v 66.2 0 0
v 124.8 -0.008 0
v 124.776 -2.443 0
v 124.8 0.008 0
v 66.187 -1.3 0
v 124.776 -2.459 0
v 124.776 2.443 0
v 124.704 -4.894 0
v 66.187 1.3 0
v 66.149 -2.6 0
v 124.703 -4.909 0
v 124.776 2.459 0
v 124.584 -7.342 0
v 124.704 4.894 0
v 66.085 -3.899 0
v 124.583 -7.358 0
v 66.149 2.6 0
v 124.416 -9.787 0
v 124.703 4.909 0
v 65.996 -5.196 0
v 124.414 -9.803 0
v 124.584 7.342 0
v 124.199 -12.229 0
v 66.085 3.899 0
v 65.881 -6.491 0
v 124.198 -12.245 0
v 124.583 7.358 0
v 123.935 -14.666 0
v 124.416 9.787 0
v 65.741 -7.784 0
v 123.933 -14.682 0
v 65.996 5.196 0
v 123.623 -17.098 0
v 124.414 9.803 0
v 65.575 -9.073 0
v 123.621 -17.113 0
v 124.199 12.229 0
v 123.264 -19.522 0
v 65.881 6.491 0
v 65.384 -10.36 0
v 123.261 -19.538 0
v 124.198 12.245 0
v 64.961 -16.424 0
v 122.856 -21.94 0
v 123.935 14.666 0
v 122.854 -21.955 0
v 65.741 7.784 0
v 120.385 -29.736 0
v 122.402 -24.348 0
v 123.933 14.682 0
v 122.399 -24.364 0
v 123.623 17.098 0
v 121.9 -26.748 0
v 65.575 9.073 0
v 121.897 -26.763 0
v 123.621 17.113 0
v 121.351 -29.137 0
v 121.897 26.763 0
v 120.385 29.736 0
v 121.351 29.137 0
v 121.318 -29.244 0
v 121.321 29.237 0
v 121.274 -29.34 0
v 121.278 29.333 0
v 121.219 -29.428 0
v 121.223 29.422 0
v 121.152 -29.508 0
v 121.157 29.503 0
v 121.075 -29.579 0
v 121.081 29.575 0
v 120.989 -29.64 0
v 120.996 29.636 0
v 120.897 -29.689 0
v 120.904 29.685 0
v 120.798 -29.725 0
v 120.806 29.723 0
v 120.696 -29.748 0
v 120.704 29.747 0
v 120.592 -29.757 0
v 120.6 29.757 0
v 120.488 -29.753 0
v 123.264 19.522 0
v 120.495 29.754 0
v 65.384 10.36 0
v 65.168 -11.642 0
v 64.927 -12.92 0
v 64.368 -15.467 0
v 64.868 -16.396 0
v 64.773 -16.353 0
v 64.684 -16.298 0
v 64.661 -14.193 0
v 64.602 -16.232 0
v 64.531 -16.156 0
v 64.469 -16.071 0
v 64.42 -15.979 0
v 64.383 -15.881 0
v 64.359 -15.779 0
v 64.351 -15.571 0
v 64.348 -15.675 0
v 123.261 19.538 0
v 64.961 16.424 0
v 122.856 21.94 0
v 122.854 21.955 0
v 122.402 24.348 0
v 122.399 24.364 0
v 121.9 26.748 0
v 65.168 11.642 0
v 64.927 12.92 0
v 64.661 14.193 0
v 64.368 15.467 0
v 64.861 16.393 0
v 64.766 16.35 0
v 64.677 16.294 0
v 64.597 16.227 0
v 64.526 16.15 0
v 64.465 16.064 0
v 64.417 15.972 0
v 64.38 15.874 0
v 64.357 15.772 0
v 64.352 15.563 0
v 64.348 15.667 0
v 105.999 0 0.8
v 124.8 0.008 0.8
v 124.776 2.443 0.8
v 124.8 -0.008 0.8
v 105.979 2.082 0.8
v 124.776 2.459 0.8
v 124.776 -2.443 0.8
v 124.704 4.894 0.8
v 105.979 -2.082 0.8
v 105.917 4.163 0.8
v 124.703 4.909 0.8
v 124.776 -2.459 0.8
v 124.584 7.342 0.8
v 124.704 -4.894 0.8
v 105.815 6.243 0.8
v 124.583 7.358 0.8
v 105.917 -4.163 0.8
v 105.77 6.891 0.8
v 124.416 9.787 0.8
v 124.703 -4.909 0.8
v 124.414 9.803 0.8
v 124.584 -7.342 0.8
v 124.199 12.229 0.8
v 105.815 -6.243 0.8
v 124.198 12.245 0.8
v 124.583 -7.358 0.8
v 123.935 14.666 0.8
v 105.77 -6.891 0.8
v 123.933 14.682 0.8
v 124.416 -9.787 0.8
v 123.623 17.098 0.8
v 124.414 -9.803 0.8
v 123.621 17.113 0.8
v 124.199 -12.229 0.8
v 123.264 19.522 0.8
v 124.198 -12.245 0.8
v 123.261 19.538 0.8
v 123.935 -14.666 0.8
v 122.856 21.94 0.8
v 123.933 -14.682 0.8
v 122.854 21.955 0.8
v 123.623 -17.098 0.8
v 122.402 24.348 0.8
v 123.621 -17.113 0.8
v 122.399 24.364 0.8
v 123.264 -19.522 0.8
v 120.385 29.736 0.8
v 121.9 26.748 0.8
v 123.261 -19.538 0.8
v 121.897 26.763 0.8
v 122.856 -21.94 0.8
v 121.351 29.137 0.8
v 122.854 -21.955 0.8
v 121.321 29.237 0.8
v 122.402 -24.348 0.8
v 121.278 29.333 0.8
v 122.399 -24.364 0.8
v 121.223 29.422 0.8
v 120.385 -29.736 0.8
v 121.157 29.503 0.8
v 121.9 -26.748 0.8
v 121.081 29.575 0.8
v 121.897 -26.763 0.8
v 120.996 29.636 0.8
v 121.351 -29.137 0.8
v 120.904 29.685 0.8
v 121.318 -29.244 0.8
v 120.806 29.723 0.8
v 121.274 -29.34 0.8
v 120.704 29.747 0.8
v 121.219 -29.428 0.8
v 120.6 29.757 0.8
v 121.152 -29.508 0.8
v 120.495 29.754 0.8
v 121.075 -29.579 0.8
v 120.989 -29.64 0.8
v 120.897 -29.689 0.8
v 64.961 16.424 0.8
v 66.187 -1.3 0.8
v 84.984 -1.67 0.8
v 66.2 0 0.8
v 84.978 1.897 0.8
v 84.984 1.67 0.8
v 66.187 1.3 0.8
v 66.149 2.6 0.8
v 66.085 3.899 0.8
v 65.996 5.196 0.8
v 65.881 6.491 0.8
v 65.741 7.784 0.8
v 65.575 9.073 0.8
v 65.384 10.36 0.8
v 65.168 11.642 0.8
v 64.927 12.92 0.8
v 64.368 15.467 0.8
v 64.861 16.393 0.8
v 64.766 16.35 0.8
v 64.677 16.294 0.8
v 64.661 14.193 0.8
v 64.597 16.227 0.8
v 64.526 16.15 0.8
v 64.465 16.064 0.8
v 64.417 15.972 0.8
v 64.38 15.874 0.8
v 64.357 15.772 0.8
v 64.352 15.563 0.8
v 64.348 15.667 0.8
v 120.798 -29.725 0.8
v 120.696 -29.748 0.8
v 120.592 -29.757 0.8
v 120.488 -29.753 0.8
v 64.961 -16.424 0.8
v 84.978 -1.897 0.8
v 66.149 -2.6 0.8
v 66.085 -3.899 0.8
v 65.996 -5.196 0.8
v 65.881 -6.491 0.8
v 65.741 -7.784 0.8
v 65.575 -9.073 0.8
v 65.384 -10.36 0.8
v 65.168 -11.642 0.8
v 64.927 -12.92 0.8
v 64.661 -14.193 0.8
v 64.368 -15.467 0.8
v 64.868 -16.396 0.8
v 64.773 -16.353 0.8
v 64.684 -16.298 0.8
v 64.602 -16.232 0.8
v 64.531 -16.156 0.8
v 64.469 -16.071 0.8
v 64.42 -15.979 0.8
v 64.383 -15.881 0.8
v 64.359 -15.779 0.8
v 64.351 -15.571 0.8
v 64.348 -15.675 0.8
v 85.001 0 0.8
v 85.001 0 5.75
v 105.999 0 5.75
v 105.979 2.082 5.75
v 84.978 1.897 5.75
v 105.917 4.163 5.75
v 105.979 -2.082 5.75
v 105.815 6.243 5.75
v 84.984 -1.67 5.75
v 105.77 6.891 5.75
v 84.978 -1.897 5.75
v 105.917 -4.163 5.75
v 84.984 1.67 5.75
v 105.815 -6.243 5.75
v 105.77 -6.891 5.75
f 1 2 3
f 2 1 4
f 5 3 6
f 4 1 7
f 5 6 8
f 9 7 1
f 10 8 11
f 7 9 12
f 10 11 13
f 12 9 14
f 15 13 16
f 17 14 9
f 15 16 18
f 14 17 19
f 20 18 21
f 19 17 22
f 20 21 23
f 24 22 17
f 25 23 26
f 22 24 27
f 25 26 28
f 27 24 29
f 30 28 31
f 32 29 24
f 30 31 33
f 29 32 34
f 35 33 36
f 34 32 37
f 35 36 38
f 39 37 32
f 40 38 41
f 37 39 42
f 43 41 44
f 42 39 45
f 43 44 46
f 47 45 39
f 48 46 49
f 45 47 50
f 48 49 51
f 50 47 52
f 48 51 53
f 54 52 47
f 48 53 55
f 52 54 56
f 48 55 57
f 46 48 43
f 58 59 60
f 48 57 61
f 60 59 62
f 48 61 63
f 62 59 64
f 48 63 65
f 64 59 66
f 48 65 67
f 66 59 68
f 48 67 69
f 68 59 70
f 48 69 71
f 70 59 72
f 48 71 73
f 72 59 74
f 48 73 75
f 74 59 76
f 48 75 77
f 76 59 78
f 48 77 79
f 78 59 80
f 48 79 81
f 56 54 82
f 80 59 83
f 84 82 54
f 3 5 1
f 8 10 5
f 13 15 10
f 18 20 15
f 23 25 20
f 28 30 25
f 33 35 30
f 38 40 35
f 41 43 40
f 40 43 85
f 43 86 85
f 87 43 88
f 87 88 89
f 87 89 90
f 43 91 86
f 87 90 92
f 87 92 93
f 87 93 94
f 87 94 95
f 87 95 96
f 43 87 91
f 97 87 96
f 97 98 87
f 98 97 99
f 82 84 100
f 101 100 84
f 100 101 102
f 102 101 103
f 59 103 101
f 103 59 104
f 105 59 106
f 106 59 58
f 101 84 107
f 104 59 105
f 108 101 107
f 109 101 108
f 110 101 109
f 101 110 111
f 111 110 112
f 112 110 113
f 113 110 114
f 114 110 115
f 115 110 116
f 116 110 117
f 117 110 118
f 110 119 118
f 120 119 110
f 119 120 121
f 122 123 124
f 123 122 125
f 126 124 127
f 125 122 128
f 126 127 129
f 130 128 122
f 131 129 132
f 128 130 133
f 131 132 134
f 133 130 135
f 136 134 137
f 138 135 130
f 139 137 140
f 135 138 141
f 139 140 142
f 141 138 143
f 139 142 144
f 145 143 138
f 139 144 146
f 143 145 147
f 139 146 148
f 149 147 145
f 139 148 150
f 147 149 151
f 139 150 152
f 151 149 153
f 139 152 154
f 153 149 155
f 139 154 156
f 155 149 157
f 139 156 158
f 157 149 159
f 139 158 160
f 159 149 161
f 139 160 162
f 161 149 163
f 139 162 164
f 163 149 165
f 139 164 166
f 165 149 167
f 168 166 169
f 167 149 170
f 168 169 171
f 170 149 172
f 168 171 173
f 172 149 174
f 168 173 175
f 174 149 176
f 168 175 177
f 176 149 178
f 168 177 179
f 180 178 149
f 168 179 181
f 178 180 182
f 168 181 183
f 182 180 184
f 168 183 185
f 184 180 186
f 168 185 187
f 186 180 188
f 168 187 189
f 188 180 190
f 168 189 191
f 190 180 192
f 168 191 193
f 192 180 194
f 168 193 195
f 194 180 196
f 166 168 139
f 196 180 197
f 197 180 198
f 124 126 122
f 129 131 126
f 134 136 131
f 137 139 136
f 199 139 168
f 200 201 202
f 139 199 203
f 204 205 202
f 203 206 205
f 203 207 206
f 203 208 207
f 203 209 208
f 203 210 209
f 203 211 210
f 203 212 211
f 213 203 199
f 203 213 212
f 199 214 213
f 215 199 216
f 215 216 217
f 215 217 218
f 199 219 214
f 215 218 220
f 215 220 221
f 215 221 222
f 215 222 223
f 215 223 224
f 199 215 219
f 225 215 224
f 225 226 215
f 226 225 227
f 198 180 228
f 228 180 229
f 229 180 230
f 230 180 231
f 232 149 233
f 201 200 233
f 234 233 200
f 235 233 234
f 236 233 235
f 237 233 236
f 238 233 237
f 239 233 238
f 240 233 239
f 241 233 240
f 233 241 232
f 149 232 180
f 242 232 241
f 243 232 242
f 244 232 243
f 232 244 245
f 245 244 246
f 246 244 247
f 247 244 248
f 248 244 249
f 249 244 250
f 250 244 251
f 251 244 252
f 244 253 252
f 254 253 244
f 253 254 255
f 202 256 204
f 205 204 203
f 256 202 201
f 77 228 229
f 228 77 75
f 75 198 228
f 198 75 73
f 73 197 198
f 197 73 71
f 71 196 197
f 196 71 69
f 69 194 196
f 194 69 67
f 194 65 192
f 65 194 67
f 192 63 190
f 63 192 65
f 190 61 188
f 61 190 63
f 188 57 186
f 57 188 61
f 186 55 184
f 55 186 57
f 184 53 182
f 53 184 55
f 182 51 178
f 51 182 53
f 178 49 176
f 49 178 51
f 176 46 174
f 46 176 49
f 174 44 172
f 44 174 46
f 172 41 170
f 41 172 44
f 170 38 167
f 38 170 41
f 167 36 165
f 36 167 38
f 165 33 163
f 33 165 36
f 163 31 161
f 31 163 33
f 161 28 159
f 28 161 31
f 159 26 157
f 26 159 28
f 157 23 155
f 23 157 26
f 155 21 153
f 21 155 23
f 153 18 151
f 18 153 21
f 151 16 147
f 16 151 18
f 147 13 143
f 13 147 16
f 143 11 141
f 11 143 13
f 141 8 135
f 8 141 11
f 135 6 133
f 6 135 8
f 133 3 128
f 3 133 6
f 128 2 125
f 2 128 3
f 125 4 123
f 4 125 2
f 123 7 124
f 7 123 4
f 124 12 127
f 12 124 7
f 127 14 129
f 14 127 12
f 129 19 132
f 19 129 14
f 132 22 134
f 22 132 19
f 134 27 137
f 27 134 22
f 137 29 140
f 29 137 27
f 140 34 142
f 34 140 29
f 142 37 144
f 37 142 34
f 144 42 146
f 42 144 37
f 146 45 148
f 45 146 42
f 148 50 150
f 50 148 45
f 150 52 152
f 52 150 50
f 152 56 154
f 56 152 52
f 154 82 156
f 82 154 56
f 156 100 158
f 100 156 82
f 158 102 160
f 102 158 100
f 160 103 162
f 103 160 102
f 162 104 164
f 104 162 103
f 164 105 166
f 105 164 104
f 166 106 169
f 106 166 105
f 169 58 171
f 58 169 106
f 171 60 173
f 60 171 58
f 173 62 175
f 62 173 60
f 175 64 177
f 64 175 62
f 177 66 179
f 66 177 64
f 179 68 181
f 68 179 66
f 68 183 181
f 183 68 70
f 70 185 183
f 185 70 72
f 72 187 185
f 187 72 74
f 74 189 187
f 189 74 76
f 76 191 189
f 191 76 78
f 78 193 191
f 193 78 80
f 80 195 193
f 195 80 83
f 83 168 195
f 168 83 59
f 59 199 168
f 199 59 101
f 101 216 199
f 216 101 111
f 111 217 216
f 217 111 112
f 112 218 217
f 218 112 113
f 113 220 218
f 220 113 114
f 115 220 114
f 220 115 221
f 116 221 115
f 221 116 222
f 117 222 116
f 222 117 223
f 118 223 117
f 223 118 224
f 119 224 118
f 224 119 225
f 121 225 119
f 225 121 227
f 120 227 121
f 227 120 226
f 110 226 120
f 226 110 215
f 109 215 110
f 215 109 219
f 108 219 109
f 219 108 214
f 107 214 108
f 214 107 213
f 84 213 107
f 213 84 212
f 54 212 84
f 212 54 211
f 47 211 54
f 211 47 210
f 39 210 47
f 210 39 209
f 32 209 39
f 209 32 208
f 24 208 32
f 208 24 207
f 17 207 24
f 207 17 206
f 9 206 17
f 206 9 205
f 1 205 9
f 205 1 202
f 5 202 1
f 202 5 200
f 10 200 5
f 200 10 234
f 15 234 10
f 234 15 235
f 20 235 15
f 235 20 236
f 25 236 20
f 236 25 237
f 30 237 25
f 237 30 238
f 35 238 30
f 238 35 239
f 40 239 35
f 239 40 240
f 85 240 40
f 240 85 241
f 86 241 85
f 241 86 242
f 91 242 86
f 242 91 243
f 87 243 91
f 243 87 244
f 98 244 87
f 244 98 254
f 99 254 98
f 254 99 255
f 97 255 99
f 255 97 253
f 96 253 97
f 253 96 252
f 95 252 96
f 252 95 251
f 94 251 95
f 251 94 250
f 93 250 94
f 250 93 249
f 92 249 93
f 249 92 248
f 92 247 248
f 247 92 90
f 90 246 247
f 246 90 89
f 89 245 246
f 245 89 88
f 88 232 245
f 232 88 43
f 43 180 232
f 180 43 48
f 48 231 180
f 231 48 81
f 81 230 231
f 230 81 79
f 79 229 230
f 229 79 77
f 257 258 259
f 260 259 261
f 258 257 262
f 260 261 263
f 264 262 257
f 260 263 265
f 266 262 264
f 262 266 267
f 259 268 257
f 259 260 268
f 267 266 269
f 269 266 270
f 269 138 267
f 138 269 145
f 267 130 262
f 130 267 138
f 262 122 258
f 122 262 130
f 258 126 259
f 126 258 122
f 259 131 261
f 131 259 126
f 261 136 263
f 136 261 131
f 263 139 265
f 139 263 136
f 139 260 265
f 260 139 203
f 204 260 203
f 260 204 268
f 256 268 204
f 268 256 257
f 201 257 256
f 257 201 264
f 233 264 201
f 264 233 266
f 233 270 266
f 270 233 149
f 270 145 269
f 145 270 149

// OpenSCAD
// Gen-DH — bobbin BASE (bottom flange + hub). Print x12, flange down. Wind 24 AWG x 243 t around
// the hub with the LID glued on (coil_lid.stl). Copper lives ONLY between the flanges (no proud winds).
include <parameters.scad>;
$fn = 48;
module sector_2d(r_in, r_out, ang) {
    polygon([
        for (a = [-ang/2 : ang/24 : ang/2]) [r_in*cos(a), r_in*sin(a)],
        for (a = [ang/2 : -ang/24 : -ang/2]) [r_out*cos(a), r_out*sin(a)]
    ]);
}
module footprint_2d() { offset(r=wall) sector_2d(coil_id_r, coil_od_r, span_deg); }
module hub_2d()       { offset(delta=-coil_core_inset) sector_2d(coil_id_r, coil_od_r, span_deg); }

union() {
    linear_extrude(flange_t) footprint_2d();
    translate([0, 0, flange_t - 0.01]) linear_extrude(former_web + 0.01) hub_2d();
}
